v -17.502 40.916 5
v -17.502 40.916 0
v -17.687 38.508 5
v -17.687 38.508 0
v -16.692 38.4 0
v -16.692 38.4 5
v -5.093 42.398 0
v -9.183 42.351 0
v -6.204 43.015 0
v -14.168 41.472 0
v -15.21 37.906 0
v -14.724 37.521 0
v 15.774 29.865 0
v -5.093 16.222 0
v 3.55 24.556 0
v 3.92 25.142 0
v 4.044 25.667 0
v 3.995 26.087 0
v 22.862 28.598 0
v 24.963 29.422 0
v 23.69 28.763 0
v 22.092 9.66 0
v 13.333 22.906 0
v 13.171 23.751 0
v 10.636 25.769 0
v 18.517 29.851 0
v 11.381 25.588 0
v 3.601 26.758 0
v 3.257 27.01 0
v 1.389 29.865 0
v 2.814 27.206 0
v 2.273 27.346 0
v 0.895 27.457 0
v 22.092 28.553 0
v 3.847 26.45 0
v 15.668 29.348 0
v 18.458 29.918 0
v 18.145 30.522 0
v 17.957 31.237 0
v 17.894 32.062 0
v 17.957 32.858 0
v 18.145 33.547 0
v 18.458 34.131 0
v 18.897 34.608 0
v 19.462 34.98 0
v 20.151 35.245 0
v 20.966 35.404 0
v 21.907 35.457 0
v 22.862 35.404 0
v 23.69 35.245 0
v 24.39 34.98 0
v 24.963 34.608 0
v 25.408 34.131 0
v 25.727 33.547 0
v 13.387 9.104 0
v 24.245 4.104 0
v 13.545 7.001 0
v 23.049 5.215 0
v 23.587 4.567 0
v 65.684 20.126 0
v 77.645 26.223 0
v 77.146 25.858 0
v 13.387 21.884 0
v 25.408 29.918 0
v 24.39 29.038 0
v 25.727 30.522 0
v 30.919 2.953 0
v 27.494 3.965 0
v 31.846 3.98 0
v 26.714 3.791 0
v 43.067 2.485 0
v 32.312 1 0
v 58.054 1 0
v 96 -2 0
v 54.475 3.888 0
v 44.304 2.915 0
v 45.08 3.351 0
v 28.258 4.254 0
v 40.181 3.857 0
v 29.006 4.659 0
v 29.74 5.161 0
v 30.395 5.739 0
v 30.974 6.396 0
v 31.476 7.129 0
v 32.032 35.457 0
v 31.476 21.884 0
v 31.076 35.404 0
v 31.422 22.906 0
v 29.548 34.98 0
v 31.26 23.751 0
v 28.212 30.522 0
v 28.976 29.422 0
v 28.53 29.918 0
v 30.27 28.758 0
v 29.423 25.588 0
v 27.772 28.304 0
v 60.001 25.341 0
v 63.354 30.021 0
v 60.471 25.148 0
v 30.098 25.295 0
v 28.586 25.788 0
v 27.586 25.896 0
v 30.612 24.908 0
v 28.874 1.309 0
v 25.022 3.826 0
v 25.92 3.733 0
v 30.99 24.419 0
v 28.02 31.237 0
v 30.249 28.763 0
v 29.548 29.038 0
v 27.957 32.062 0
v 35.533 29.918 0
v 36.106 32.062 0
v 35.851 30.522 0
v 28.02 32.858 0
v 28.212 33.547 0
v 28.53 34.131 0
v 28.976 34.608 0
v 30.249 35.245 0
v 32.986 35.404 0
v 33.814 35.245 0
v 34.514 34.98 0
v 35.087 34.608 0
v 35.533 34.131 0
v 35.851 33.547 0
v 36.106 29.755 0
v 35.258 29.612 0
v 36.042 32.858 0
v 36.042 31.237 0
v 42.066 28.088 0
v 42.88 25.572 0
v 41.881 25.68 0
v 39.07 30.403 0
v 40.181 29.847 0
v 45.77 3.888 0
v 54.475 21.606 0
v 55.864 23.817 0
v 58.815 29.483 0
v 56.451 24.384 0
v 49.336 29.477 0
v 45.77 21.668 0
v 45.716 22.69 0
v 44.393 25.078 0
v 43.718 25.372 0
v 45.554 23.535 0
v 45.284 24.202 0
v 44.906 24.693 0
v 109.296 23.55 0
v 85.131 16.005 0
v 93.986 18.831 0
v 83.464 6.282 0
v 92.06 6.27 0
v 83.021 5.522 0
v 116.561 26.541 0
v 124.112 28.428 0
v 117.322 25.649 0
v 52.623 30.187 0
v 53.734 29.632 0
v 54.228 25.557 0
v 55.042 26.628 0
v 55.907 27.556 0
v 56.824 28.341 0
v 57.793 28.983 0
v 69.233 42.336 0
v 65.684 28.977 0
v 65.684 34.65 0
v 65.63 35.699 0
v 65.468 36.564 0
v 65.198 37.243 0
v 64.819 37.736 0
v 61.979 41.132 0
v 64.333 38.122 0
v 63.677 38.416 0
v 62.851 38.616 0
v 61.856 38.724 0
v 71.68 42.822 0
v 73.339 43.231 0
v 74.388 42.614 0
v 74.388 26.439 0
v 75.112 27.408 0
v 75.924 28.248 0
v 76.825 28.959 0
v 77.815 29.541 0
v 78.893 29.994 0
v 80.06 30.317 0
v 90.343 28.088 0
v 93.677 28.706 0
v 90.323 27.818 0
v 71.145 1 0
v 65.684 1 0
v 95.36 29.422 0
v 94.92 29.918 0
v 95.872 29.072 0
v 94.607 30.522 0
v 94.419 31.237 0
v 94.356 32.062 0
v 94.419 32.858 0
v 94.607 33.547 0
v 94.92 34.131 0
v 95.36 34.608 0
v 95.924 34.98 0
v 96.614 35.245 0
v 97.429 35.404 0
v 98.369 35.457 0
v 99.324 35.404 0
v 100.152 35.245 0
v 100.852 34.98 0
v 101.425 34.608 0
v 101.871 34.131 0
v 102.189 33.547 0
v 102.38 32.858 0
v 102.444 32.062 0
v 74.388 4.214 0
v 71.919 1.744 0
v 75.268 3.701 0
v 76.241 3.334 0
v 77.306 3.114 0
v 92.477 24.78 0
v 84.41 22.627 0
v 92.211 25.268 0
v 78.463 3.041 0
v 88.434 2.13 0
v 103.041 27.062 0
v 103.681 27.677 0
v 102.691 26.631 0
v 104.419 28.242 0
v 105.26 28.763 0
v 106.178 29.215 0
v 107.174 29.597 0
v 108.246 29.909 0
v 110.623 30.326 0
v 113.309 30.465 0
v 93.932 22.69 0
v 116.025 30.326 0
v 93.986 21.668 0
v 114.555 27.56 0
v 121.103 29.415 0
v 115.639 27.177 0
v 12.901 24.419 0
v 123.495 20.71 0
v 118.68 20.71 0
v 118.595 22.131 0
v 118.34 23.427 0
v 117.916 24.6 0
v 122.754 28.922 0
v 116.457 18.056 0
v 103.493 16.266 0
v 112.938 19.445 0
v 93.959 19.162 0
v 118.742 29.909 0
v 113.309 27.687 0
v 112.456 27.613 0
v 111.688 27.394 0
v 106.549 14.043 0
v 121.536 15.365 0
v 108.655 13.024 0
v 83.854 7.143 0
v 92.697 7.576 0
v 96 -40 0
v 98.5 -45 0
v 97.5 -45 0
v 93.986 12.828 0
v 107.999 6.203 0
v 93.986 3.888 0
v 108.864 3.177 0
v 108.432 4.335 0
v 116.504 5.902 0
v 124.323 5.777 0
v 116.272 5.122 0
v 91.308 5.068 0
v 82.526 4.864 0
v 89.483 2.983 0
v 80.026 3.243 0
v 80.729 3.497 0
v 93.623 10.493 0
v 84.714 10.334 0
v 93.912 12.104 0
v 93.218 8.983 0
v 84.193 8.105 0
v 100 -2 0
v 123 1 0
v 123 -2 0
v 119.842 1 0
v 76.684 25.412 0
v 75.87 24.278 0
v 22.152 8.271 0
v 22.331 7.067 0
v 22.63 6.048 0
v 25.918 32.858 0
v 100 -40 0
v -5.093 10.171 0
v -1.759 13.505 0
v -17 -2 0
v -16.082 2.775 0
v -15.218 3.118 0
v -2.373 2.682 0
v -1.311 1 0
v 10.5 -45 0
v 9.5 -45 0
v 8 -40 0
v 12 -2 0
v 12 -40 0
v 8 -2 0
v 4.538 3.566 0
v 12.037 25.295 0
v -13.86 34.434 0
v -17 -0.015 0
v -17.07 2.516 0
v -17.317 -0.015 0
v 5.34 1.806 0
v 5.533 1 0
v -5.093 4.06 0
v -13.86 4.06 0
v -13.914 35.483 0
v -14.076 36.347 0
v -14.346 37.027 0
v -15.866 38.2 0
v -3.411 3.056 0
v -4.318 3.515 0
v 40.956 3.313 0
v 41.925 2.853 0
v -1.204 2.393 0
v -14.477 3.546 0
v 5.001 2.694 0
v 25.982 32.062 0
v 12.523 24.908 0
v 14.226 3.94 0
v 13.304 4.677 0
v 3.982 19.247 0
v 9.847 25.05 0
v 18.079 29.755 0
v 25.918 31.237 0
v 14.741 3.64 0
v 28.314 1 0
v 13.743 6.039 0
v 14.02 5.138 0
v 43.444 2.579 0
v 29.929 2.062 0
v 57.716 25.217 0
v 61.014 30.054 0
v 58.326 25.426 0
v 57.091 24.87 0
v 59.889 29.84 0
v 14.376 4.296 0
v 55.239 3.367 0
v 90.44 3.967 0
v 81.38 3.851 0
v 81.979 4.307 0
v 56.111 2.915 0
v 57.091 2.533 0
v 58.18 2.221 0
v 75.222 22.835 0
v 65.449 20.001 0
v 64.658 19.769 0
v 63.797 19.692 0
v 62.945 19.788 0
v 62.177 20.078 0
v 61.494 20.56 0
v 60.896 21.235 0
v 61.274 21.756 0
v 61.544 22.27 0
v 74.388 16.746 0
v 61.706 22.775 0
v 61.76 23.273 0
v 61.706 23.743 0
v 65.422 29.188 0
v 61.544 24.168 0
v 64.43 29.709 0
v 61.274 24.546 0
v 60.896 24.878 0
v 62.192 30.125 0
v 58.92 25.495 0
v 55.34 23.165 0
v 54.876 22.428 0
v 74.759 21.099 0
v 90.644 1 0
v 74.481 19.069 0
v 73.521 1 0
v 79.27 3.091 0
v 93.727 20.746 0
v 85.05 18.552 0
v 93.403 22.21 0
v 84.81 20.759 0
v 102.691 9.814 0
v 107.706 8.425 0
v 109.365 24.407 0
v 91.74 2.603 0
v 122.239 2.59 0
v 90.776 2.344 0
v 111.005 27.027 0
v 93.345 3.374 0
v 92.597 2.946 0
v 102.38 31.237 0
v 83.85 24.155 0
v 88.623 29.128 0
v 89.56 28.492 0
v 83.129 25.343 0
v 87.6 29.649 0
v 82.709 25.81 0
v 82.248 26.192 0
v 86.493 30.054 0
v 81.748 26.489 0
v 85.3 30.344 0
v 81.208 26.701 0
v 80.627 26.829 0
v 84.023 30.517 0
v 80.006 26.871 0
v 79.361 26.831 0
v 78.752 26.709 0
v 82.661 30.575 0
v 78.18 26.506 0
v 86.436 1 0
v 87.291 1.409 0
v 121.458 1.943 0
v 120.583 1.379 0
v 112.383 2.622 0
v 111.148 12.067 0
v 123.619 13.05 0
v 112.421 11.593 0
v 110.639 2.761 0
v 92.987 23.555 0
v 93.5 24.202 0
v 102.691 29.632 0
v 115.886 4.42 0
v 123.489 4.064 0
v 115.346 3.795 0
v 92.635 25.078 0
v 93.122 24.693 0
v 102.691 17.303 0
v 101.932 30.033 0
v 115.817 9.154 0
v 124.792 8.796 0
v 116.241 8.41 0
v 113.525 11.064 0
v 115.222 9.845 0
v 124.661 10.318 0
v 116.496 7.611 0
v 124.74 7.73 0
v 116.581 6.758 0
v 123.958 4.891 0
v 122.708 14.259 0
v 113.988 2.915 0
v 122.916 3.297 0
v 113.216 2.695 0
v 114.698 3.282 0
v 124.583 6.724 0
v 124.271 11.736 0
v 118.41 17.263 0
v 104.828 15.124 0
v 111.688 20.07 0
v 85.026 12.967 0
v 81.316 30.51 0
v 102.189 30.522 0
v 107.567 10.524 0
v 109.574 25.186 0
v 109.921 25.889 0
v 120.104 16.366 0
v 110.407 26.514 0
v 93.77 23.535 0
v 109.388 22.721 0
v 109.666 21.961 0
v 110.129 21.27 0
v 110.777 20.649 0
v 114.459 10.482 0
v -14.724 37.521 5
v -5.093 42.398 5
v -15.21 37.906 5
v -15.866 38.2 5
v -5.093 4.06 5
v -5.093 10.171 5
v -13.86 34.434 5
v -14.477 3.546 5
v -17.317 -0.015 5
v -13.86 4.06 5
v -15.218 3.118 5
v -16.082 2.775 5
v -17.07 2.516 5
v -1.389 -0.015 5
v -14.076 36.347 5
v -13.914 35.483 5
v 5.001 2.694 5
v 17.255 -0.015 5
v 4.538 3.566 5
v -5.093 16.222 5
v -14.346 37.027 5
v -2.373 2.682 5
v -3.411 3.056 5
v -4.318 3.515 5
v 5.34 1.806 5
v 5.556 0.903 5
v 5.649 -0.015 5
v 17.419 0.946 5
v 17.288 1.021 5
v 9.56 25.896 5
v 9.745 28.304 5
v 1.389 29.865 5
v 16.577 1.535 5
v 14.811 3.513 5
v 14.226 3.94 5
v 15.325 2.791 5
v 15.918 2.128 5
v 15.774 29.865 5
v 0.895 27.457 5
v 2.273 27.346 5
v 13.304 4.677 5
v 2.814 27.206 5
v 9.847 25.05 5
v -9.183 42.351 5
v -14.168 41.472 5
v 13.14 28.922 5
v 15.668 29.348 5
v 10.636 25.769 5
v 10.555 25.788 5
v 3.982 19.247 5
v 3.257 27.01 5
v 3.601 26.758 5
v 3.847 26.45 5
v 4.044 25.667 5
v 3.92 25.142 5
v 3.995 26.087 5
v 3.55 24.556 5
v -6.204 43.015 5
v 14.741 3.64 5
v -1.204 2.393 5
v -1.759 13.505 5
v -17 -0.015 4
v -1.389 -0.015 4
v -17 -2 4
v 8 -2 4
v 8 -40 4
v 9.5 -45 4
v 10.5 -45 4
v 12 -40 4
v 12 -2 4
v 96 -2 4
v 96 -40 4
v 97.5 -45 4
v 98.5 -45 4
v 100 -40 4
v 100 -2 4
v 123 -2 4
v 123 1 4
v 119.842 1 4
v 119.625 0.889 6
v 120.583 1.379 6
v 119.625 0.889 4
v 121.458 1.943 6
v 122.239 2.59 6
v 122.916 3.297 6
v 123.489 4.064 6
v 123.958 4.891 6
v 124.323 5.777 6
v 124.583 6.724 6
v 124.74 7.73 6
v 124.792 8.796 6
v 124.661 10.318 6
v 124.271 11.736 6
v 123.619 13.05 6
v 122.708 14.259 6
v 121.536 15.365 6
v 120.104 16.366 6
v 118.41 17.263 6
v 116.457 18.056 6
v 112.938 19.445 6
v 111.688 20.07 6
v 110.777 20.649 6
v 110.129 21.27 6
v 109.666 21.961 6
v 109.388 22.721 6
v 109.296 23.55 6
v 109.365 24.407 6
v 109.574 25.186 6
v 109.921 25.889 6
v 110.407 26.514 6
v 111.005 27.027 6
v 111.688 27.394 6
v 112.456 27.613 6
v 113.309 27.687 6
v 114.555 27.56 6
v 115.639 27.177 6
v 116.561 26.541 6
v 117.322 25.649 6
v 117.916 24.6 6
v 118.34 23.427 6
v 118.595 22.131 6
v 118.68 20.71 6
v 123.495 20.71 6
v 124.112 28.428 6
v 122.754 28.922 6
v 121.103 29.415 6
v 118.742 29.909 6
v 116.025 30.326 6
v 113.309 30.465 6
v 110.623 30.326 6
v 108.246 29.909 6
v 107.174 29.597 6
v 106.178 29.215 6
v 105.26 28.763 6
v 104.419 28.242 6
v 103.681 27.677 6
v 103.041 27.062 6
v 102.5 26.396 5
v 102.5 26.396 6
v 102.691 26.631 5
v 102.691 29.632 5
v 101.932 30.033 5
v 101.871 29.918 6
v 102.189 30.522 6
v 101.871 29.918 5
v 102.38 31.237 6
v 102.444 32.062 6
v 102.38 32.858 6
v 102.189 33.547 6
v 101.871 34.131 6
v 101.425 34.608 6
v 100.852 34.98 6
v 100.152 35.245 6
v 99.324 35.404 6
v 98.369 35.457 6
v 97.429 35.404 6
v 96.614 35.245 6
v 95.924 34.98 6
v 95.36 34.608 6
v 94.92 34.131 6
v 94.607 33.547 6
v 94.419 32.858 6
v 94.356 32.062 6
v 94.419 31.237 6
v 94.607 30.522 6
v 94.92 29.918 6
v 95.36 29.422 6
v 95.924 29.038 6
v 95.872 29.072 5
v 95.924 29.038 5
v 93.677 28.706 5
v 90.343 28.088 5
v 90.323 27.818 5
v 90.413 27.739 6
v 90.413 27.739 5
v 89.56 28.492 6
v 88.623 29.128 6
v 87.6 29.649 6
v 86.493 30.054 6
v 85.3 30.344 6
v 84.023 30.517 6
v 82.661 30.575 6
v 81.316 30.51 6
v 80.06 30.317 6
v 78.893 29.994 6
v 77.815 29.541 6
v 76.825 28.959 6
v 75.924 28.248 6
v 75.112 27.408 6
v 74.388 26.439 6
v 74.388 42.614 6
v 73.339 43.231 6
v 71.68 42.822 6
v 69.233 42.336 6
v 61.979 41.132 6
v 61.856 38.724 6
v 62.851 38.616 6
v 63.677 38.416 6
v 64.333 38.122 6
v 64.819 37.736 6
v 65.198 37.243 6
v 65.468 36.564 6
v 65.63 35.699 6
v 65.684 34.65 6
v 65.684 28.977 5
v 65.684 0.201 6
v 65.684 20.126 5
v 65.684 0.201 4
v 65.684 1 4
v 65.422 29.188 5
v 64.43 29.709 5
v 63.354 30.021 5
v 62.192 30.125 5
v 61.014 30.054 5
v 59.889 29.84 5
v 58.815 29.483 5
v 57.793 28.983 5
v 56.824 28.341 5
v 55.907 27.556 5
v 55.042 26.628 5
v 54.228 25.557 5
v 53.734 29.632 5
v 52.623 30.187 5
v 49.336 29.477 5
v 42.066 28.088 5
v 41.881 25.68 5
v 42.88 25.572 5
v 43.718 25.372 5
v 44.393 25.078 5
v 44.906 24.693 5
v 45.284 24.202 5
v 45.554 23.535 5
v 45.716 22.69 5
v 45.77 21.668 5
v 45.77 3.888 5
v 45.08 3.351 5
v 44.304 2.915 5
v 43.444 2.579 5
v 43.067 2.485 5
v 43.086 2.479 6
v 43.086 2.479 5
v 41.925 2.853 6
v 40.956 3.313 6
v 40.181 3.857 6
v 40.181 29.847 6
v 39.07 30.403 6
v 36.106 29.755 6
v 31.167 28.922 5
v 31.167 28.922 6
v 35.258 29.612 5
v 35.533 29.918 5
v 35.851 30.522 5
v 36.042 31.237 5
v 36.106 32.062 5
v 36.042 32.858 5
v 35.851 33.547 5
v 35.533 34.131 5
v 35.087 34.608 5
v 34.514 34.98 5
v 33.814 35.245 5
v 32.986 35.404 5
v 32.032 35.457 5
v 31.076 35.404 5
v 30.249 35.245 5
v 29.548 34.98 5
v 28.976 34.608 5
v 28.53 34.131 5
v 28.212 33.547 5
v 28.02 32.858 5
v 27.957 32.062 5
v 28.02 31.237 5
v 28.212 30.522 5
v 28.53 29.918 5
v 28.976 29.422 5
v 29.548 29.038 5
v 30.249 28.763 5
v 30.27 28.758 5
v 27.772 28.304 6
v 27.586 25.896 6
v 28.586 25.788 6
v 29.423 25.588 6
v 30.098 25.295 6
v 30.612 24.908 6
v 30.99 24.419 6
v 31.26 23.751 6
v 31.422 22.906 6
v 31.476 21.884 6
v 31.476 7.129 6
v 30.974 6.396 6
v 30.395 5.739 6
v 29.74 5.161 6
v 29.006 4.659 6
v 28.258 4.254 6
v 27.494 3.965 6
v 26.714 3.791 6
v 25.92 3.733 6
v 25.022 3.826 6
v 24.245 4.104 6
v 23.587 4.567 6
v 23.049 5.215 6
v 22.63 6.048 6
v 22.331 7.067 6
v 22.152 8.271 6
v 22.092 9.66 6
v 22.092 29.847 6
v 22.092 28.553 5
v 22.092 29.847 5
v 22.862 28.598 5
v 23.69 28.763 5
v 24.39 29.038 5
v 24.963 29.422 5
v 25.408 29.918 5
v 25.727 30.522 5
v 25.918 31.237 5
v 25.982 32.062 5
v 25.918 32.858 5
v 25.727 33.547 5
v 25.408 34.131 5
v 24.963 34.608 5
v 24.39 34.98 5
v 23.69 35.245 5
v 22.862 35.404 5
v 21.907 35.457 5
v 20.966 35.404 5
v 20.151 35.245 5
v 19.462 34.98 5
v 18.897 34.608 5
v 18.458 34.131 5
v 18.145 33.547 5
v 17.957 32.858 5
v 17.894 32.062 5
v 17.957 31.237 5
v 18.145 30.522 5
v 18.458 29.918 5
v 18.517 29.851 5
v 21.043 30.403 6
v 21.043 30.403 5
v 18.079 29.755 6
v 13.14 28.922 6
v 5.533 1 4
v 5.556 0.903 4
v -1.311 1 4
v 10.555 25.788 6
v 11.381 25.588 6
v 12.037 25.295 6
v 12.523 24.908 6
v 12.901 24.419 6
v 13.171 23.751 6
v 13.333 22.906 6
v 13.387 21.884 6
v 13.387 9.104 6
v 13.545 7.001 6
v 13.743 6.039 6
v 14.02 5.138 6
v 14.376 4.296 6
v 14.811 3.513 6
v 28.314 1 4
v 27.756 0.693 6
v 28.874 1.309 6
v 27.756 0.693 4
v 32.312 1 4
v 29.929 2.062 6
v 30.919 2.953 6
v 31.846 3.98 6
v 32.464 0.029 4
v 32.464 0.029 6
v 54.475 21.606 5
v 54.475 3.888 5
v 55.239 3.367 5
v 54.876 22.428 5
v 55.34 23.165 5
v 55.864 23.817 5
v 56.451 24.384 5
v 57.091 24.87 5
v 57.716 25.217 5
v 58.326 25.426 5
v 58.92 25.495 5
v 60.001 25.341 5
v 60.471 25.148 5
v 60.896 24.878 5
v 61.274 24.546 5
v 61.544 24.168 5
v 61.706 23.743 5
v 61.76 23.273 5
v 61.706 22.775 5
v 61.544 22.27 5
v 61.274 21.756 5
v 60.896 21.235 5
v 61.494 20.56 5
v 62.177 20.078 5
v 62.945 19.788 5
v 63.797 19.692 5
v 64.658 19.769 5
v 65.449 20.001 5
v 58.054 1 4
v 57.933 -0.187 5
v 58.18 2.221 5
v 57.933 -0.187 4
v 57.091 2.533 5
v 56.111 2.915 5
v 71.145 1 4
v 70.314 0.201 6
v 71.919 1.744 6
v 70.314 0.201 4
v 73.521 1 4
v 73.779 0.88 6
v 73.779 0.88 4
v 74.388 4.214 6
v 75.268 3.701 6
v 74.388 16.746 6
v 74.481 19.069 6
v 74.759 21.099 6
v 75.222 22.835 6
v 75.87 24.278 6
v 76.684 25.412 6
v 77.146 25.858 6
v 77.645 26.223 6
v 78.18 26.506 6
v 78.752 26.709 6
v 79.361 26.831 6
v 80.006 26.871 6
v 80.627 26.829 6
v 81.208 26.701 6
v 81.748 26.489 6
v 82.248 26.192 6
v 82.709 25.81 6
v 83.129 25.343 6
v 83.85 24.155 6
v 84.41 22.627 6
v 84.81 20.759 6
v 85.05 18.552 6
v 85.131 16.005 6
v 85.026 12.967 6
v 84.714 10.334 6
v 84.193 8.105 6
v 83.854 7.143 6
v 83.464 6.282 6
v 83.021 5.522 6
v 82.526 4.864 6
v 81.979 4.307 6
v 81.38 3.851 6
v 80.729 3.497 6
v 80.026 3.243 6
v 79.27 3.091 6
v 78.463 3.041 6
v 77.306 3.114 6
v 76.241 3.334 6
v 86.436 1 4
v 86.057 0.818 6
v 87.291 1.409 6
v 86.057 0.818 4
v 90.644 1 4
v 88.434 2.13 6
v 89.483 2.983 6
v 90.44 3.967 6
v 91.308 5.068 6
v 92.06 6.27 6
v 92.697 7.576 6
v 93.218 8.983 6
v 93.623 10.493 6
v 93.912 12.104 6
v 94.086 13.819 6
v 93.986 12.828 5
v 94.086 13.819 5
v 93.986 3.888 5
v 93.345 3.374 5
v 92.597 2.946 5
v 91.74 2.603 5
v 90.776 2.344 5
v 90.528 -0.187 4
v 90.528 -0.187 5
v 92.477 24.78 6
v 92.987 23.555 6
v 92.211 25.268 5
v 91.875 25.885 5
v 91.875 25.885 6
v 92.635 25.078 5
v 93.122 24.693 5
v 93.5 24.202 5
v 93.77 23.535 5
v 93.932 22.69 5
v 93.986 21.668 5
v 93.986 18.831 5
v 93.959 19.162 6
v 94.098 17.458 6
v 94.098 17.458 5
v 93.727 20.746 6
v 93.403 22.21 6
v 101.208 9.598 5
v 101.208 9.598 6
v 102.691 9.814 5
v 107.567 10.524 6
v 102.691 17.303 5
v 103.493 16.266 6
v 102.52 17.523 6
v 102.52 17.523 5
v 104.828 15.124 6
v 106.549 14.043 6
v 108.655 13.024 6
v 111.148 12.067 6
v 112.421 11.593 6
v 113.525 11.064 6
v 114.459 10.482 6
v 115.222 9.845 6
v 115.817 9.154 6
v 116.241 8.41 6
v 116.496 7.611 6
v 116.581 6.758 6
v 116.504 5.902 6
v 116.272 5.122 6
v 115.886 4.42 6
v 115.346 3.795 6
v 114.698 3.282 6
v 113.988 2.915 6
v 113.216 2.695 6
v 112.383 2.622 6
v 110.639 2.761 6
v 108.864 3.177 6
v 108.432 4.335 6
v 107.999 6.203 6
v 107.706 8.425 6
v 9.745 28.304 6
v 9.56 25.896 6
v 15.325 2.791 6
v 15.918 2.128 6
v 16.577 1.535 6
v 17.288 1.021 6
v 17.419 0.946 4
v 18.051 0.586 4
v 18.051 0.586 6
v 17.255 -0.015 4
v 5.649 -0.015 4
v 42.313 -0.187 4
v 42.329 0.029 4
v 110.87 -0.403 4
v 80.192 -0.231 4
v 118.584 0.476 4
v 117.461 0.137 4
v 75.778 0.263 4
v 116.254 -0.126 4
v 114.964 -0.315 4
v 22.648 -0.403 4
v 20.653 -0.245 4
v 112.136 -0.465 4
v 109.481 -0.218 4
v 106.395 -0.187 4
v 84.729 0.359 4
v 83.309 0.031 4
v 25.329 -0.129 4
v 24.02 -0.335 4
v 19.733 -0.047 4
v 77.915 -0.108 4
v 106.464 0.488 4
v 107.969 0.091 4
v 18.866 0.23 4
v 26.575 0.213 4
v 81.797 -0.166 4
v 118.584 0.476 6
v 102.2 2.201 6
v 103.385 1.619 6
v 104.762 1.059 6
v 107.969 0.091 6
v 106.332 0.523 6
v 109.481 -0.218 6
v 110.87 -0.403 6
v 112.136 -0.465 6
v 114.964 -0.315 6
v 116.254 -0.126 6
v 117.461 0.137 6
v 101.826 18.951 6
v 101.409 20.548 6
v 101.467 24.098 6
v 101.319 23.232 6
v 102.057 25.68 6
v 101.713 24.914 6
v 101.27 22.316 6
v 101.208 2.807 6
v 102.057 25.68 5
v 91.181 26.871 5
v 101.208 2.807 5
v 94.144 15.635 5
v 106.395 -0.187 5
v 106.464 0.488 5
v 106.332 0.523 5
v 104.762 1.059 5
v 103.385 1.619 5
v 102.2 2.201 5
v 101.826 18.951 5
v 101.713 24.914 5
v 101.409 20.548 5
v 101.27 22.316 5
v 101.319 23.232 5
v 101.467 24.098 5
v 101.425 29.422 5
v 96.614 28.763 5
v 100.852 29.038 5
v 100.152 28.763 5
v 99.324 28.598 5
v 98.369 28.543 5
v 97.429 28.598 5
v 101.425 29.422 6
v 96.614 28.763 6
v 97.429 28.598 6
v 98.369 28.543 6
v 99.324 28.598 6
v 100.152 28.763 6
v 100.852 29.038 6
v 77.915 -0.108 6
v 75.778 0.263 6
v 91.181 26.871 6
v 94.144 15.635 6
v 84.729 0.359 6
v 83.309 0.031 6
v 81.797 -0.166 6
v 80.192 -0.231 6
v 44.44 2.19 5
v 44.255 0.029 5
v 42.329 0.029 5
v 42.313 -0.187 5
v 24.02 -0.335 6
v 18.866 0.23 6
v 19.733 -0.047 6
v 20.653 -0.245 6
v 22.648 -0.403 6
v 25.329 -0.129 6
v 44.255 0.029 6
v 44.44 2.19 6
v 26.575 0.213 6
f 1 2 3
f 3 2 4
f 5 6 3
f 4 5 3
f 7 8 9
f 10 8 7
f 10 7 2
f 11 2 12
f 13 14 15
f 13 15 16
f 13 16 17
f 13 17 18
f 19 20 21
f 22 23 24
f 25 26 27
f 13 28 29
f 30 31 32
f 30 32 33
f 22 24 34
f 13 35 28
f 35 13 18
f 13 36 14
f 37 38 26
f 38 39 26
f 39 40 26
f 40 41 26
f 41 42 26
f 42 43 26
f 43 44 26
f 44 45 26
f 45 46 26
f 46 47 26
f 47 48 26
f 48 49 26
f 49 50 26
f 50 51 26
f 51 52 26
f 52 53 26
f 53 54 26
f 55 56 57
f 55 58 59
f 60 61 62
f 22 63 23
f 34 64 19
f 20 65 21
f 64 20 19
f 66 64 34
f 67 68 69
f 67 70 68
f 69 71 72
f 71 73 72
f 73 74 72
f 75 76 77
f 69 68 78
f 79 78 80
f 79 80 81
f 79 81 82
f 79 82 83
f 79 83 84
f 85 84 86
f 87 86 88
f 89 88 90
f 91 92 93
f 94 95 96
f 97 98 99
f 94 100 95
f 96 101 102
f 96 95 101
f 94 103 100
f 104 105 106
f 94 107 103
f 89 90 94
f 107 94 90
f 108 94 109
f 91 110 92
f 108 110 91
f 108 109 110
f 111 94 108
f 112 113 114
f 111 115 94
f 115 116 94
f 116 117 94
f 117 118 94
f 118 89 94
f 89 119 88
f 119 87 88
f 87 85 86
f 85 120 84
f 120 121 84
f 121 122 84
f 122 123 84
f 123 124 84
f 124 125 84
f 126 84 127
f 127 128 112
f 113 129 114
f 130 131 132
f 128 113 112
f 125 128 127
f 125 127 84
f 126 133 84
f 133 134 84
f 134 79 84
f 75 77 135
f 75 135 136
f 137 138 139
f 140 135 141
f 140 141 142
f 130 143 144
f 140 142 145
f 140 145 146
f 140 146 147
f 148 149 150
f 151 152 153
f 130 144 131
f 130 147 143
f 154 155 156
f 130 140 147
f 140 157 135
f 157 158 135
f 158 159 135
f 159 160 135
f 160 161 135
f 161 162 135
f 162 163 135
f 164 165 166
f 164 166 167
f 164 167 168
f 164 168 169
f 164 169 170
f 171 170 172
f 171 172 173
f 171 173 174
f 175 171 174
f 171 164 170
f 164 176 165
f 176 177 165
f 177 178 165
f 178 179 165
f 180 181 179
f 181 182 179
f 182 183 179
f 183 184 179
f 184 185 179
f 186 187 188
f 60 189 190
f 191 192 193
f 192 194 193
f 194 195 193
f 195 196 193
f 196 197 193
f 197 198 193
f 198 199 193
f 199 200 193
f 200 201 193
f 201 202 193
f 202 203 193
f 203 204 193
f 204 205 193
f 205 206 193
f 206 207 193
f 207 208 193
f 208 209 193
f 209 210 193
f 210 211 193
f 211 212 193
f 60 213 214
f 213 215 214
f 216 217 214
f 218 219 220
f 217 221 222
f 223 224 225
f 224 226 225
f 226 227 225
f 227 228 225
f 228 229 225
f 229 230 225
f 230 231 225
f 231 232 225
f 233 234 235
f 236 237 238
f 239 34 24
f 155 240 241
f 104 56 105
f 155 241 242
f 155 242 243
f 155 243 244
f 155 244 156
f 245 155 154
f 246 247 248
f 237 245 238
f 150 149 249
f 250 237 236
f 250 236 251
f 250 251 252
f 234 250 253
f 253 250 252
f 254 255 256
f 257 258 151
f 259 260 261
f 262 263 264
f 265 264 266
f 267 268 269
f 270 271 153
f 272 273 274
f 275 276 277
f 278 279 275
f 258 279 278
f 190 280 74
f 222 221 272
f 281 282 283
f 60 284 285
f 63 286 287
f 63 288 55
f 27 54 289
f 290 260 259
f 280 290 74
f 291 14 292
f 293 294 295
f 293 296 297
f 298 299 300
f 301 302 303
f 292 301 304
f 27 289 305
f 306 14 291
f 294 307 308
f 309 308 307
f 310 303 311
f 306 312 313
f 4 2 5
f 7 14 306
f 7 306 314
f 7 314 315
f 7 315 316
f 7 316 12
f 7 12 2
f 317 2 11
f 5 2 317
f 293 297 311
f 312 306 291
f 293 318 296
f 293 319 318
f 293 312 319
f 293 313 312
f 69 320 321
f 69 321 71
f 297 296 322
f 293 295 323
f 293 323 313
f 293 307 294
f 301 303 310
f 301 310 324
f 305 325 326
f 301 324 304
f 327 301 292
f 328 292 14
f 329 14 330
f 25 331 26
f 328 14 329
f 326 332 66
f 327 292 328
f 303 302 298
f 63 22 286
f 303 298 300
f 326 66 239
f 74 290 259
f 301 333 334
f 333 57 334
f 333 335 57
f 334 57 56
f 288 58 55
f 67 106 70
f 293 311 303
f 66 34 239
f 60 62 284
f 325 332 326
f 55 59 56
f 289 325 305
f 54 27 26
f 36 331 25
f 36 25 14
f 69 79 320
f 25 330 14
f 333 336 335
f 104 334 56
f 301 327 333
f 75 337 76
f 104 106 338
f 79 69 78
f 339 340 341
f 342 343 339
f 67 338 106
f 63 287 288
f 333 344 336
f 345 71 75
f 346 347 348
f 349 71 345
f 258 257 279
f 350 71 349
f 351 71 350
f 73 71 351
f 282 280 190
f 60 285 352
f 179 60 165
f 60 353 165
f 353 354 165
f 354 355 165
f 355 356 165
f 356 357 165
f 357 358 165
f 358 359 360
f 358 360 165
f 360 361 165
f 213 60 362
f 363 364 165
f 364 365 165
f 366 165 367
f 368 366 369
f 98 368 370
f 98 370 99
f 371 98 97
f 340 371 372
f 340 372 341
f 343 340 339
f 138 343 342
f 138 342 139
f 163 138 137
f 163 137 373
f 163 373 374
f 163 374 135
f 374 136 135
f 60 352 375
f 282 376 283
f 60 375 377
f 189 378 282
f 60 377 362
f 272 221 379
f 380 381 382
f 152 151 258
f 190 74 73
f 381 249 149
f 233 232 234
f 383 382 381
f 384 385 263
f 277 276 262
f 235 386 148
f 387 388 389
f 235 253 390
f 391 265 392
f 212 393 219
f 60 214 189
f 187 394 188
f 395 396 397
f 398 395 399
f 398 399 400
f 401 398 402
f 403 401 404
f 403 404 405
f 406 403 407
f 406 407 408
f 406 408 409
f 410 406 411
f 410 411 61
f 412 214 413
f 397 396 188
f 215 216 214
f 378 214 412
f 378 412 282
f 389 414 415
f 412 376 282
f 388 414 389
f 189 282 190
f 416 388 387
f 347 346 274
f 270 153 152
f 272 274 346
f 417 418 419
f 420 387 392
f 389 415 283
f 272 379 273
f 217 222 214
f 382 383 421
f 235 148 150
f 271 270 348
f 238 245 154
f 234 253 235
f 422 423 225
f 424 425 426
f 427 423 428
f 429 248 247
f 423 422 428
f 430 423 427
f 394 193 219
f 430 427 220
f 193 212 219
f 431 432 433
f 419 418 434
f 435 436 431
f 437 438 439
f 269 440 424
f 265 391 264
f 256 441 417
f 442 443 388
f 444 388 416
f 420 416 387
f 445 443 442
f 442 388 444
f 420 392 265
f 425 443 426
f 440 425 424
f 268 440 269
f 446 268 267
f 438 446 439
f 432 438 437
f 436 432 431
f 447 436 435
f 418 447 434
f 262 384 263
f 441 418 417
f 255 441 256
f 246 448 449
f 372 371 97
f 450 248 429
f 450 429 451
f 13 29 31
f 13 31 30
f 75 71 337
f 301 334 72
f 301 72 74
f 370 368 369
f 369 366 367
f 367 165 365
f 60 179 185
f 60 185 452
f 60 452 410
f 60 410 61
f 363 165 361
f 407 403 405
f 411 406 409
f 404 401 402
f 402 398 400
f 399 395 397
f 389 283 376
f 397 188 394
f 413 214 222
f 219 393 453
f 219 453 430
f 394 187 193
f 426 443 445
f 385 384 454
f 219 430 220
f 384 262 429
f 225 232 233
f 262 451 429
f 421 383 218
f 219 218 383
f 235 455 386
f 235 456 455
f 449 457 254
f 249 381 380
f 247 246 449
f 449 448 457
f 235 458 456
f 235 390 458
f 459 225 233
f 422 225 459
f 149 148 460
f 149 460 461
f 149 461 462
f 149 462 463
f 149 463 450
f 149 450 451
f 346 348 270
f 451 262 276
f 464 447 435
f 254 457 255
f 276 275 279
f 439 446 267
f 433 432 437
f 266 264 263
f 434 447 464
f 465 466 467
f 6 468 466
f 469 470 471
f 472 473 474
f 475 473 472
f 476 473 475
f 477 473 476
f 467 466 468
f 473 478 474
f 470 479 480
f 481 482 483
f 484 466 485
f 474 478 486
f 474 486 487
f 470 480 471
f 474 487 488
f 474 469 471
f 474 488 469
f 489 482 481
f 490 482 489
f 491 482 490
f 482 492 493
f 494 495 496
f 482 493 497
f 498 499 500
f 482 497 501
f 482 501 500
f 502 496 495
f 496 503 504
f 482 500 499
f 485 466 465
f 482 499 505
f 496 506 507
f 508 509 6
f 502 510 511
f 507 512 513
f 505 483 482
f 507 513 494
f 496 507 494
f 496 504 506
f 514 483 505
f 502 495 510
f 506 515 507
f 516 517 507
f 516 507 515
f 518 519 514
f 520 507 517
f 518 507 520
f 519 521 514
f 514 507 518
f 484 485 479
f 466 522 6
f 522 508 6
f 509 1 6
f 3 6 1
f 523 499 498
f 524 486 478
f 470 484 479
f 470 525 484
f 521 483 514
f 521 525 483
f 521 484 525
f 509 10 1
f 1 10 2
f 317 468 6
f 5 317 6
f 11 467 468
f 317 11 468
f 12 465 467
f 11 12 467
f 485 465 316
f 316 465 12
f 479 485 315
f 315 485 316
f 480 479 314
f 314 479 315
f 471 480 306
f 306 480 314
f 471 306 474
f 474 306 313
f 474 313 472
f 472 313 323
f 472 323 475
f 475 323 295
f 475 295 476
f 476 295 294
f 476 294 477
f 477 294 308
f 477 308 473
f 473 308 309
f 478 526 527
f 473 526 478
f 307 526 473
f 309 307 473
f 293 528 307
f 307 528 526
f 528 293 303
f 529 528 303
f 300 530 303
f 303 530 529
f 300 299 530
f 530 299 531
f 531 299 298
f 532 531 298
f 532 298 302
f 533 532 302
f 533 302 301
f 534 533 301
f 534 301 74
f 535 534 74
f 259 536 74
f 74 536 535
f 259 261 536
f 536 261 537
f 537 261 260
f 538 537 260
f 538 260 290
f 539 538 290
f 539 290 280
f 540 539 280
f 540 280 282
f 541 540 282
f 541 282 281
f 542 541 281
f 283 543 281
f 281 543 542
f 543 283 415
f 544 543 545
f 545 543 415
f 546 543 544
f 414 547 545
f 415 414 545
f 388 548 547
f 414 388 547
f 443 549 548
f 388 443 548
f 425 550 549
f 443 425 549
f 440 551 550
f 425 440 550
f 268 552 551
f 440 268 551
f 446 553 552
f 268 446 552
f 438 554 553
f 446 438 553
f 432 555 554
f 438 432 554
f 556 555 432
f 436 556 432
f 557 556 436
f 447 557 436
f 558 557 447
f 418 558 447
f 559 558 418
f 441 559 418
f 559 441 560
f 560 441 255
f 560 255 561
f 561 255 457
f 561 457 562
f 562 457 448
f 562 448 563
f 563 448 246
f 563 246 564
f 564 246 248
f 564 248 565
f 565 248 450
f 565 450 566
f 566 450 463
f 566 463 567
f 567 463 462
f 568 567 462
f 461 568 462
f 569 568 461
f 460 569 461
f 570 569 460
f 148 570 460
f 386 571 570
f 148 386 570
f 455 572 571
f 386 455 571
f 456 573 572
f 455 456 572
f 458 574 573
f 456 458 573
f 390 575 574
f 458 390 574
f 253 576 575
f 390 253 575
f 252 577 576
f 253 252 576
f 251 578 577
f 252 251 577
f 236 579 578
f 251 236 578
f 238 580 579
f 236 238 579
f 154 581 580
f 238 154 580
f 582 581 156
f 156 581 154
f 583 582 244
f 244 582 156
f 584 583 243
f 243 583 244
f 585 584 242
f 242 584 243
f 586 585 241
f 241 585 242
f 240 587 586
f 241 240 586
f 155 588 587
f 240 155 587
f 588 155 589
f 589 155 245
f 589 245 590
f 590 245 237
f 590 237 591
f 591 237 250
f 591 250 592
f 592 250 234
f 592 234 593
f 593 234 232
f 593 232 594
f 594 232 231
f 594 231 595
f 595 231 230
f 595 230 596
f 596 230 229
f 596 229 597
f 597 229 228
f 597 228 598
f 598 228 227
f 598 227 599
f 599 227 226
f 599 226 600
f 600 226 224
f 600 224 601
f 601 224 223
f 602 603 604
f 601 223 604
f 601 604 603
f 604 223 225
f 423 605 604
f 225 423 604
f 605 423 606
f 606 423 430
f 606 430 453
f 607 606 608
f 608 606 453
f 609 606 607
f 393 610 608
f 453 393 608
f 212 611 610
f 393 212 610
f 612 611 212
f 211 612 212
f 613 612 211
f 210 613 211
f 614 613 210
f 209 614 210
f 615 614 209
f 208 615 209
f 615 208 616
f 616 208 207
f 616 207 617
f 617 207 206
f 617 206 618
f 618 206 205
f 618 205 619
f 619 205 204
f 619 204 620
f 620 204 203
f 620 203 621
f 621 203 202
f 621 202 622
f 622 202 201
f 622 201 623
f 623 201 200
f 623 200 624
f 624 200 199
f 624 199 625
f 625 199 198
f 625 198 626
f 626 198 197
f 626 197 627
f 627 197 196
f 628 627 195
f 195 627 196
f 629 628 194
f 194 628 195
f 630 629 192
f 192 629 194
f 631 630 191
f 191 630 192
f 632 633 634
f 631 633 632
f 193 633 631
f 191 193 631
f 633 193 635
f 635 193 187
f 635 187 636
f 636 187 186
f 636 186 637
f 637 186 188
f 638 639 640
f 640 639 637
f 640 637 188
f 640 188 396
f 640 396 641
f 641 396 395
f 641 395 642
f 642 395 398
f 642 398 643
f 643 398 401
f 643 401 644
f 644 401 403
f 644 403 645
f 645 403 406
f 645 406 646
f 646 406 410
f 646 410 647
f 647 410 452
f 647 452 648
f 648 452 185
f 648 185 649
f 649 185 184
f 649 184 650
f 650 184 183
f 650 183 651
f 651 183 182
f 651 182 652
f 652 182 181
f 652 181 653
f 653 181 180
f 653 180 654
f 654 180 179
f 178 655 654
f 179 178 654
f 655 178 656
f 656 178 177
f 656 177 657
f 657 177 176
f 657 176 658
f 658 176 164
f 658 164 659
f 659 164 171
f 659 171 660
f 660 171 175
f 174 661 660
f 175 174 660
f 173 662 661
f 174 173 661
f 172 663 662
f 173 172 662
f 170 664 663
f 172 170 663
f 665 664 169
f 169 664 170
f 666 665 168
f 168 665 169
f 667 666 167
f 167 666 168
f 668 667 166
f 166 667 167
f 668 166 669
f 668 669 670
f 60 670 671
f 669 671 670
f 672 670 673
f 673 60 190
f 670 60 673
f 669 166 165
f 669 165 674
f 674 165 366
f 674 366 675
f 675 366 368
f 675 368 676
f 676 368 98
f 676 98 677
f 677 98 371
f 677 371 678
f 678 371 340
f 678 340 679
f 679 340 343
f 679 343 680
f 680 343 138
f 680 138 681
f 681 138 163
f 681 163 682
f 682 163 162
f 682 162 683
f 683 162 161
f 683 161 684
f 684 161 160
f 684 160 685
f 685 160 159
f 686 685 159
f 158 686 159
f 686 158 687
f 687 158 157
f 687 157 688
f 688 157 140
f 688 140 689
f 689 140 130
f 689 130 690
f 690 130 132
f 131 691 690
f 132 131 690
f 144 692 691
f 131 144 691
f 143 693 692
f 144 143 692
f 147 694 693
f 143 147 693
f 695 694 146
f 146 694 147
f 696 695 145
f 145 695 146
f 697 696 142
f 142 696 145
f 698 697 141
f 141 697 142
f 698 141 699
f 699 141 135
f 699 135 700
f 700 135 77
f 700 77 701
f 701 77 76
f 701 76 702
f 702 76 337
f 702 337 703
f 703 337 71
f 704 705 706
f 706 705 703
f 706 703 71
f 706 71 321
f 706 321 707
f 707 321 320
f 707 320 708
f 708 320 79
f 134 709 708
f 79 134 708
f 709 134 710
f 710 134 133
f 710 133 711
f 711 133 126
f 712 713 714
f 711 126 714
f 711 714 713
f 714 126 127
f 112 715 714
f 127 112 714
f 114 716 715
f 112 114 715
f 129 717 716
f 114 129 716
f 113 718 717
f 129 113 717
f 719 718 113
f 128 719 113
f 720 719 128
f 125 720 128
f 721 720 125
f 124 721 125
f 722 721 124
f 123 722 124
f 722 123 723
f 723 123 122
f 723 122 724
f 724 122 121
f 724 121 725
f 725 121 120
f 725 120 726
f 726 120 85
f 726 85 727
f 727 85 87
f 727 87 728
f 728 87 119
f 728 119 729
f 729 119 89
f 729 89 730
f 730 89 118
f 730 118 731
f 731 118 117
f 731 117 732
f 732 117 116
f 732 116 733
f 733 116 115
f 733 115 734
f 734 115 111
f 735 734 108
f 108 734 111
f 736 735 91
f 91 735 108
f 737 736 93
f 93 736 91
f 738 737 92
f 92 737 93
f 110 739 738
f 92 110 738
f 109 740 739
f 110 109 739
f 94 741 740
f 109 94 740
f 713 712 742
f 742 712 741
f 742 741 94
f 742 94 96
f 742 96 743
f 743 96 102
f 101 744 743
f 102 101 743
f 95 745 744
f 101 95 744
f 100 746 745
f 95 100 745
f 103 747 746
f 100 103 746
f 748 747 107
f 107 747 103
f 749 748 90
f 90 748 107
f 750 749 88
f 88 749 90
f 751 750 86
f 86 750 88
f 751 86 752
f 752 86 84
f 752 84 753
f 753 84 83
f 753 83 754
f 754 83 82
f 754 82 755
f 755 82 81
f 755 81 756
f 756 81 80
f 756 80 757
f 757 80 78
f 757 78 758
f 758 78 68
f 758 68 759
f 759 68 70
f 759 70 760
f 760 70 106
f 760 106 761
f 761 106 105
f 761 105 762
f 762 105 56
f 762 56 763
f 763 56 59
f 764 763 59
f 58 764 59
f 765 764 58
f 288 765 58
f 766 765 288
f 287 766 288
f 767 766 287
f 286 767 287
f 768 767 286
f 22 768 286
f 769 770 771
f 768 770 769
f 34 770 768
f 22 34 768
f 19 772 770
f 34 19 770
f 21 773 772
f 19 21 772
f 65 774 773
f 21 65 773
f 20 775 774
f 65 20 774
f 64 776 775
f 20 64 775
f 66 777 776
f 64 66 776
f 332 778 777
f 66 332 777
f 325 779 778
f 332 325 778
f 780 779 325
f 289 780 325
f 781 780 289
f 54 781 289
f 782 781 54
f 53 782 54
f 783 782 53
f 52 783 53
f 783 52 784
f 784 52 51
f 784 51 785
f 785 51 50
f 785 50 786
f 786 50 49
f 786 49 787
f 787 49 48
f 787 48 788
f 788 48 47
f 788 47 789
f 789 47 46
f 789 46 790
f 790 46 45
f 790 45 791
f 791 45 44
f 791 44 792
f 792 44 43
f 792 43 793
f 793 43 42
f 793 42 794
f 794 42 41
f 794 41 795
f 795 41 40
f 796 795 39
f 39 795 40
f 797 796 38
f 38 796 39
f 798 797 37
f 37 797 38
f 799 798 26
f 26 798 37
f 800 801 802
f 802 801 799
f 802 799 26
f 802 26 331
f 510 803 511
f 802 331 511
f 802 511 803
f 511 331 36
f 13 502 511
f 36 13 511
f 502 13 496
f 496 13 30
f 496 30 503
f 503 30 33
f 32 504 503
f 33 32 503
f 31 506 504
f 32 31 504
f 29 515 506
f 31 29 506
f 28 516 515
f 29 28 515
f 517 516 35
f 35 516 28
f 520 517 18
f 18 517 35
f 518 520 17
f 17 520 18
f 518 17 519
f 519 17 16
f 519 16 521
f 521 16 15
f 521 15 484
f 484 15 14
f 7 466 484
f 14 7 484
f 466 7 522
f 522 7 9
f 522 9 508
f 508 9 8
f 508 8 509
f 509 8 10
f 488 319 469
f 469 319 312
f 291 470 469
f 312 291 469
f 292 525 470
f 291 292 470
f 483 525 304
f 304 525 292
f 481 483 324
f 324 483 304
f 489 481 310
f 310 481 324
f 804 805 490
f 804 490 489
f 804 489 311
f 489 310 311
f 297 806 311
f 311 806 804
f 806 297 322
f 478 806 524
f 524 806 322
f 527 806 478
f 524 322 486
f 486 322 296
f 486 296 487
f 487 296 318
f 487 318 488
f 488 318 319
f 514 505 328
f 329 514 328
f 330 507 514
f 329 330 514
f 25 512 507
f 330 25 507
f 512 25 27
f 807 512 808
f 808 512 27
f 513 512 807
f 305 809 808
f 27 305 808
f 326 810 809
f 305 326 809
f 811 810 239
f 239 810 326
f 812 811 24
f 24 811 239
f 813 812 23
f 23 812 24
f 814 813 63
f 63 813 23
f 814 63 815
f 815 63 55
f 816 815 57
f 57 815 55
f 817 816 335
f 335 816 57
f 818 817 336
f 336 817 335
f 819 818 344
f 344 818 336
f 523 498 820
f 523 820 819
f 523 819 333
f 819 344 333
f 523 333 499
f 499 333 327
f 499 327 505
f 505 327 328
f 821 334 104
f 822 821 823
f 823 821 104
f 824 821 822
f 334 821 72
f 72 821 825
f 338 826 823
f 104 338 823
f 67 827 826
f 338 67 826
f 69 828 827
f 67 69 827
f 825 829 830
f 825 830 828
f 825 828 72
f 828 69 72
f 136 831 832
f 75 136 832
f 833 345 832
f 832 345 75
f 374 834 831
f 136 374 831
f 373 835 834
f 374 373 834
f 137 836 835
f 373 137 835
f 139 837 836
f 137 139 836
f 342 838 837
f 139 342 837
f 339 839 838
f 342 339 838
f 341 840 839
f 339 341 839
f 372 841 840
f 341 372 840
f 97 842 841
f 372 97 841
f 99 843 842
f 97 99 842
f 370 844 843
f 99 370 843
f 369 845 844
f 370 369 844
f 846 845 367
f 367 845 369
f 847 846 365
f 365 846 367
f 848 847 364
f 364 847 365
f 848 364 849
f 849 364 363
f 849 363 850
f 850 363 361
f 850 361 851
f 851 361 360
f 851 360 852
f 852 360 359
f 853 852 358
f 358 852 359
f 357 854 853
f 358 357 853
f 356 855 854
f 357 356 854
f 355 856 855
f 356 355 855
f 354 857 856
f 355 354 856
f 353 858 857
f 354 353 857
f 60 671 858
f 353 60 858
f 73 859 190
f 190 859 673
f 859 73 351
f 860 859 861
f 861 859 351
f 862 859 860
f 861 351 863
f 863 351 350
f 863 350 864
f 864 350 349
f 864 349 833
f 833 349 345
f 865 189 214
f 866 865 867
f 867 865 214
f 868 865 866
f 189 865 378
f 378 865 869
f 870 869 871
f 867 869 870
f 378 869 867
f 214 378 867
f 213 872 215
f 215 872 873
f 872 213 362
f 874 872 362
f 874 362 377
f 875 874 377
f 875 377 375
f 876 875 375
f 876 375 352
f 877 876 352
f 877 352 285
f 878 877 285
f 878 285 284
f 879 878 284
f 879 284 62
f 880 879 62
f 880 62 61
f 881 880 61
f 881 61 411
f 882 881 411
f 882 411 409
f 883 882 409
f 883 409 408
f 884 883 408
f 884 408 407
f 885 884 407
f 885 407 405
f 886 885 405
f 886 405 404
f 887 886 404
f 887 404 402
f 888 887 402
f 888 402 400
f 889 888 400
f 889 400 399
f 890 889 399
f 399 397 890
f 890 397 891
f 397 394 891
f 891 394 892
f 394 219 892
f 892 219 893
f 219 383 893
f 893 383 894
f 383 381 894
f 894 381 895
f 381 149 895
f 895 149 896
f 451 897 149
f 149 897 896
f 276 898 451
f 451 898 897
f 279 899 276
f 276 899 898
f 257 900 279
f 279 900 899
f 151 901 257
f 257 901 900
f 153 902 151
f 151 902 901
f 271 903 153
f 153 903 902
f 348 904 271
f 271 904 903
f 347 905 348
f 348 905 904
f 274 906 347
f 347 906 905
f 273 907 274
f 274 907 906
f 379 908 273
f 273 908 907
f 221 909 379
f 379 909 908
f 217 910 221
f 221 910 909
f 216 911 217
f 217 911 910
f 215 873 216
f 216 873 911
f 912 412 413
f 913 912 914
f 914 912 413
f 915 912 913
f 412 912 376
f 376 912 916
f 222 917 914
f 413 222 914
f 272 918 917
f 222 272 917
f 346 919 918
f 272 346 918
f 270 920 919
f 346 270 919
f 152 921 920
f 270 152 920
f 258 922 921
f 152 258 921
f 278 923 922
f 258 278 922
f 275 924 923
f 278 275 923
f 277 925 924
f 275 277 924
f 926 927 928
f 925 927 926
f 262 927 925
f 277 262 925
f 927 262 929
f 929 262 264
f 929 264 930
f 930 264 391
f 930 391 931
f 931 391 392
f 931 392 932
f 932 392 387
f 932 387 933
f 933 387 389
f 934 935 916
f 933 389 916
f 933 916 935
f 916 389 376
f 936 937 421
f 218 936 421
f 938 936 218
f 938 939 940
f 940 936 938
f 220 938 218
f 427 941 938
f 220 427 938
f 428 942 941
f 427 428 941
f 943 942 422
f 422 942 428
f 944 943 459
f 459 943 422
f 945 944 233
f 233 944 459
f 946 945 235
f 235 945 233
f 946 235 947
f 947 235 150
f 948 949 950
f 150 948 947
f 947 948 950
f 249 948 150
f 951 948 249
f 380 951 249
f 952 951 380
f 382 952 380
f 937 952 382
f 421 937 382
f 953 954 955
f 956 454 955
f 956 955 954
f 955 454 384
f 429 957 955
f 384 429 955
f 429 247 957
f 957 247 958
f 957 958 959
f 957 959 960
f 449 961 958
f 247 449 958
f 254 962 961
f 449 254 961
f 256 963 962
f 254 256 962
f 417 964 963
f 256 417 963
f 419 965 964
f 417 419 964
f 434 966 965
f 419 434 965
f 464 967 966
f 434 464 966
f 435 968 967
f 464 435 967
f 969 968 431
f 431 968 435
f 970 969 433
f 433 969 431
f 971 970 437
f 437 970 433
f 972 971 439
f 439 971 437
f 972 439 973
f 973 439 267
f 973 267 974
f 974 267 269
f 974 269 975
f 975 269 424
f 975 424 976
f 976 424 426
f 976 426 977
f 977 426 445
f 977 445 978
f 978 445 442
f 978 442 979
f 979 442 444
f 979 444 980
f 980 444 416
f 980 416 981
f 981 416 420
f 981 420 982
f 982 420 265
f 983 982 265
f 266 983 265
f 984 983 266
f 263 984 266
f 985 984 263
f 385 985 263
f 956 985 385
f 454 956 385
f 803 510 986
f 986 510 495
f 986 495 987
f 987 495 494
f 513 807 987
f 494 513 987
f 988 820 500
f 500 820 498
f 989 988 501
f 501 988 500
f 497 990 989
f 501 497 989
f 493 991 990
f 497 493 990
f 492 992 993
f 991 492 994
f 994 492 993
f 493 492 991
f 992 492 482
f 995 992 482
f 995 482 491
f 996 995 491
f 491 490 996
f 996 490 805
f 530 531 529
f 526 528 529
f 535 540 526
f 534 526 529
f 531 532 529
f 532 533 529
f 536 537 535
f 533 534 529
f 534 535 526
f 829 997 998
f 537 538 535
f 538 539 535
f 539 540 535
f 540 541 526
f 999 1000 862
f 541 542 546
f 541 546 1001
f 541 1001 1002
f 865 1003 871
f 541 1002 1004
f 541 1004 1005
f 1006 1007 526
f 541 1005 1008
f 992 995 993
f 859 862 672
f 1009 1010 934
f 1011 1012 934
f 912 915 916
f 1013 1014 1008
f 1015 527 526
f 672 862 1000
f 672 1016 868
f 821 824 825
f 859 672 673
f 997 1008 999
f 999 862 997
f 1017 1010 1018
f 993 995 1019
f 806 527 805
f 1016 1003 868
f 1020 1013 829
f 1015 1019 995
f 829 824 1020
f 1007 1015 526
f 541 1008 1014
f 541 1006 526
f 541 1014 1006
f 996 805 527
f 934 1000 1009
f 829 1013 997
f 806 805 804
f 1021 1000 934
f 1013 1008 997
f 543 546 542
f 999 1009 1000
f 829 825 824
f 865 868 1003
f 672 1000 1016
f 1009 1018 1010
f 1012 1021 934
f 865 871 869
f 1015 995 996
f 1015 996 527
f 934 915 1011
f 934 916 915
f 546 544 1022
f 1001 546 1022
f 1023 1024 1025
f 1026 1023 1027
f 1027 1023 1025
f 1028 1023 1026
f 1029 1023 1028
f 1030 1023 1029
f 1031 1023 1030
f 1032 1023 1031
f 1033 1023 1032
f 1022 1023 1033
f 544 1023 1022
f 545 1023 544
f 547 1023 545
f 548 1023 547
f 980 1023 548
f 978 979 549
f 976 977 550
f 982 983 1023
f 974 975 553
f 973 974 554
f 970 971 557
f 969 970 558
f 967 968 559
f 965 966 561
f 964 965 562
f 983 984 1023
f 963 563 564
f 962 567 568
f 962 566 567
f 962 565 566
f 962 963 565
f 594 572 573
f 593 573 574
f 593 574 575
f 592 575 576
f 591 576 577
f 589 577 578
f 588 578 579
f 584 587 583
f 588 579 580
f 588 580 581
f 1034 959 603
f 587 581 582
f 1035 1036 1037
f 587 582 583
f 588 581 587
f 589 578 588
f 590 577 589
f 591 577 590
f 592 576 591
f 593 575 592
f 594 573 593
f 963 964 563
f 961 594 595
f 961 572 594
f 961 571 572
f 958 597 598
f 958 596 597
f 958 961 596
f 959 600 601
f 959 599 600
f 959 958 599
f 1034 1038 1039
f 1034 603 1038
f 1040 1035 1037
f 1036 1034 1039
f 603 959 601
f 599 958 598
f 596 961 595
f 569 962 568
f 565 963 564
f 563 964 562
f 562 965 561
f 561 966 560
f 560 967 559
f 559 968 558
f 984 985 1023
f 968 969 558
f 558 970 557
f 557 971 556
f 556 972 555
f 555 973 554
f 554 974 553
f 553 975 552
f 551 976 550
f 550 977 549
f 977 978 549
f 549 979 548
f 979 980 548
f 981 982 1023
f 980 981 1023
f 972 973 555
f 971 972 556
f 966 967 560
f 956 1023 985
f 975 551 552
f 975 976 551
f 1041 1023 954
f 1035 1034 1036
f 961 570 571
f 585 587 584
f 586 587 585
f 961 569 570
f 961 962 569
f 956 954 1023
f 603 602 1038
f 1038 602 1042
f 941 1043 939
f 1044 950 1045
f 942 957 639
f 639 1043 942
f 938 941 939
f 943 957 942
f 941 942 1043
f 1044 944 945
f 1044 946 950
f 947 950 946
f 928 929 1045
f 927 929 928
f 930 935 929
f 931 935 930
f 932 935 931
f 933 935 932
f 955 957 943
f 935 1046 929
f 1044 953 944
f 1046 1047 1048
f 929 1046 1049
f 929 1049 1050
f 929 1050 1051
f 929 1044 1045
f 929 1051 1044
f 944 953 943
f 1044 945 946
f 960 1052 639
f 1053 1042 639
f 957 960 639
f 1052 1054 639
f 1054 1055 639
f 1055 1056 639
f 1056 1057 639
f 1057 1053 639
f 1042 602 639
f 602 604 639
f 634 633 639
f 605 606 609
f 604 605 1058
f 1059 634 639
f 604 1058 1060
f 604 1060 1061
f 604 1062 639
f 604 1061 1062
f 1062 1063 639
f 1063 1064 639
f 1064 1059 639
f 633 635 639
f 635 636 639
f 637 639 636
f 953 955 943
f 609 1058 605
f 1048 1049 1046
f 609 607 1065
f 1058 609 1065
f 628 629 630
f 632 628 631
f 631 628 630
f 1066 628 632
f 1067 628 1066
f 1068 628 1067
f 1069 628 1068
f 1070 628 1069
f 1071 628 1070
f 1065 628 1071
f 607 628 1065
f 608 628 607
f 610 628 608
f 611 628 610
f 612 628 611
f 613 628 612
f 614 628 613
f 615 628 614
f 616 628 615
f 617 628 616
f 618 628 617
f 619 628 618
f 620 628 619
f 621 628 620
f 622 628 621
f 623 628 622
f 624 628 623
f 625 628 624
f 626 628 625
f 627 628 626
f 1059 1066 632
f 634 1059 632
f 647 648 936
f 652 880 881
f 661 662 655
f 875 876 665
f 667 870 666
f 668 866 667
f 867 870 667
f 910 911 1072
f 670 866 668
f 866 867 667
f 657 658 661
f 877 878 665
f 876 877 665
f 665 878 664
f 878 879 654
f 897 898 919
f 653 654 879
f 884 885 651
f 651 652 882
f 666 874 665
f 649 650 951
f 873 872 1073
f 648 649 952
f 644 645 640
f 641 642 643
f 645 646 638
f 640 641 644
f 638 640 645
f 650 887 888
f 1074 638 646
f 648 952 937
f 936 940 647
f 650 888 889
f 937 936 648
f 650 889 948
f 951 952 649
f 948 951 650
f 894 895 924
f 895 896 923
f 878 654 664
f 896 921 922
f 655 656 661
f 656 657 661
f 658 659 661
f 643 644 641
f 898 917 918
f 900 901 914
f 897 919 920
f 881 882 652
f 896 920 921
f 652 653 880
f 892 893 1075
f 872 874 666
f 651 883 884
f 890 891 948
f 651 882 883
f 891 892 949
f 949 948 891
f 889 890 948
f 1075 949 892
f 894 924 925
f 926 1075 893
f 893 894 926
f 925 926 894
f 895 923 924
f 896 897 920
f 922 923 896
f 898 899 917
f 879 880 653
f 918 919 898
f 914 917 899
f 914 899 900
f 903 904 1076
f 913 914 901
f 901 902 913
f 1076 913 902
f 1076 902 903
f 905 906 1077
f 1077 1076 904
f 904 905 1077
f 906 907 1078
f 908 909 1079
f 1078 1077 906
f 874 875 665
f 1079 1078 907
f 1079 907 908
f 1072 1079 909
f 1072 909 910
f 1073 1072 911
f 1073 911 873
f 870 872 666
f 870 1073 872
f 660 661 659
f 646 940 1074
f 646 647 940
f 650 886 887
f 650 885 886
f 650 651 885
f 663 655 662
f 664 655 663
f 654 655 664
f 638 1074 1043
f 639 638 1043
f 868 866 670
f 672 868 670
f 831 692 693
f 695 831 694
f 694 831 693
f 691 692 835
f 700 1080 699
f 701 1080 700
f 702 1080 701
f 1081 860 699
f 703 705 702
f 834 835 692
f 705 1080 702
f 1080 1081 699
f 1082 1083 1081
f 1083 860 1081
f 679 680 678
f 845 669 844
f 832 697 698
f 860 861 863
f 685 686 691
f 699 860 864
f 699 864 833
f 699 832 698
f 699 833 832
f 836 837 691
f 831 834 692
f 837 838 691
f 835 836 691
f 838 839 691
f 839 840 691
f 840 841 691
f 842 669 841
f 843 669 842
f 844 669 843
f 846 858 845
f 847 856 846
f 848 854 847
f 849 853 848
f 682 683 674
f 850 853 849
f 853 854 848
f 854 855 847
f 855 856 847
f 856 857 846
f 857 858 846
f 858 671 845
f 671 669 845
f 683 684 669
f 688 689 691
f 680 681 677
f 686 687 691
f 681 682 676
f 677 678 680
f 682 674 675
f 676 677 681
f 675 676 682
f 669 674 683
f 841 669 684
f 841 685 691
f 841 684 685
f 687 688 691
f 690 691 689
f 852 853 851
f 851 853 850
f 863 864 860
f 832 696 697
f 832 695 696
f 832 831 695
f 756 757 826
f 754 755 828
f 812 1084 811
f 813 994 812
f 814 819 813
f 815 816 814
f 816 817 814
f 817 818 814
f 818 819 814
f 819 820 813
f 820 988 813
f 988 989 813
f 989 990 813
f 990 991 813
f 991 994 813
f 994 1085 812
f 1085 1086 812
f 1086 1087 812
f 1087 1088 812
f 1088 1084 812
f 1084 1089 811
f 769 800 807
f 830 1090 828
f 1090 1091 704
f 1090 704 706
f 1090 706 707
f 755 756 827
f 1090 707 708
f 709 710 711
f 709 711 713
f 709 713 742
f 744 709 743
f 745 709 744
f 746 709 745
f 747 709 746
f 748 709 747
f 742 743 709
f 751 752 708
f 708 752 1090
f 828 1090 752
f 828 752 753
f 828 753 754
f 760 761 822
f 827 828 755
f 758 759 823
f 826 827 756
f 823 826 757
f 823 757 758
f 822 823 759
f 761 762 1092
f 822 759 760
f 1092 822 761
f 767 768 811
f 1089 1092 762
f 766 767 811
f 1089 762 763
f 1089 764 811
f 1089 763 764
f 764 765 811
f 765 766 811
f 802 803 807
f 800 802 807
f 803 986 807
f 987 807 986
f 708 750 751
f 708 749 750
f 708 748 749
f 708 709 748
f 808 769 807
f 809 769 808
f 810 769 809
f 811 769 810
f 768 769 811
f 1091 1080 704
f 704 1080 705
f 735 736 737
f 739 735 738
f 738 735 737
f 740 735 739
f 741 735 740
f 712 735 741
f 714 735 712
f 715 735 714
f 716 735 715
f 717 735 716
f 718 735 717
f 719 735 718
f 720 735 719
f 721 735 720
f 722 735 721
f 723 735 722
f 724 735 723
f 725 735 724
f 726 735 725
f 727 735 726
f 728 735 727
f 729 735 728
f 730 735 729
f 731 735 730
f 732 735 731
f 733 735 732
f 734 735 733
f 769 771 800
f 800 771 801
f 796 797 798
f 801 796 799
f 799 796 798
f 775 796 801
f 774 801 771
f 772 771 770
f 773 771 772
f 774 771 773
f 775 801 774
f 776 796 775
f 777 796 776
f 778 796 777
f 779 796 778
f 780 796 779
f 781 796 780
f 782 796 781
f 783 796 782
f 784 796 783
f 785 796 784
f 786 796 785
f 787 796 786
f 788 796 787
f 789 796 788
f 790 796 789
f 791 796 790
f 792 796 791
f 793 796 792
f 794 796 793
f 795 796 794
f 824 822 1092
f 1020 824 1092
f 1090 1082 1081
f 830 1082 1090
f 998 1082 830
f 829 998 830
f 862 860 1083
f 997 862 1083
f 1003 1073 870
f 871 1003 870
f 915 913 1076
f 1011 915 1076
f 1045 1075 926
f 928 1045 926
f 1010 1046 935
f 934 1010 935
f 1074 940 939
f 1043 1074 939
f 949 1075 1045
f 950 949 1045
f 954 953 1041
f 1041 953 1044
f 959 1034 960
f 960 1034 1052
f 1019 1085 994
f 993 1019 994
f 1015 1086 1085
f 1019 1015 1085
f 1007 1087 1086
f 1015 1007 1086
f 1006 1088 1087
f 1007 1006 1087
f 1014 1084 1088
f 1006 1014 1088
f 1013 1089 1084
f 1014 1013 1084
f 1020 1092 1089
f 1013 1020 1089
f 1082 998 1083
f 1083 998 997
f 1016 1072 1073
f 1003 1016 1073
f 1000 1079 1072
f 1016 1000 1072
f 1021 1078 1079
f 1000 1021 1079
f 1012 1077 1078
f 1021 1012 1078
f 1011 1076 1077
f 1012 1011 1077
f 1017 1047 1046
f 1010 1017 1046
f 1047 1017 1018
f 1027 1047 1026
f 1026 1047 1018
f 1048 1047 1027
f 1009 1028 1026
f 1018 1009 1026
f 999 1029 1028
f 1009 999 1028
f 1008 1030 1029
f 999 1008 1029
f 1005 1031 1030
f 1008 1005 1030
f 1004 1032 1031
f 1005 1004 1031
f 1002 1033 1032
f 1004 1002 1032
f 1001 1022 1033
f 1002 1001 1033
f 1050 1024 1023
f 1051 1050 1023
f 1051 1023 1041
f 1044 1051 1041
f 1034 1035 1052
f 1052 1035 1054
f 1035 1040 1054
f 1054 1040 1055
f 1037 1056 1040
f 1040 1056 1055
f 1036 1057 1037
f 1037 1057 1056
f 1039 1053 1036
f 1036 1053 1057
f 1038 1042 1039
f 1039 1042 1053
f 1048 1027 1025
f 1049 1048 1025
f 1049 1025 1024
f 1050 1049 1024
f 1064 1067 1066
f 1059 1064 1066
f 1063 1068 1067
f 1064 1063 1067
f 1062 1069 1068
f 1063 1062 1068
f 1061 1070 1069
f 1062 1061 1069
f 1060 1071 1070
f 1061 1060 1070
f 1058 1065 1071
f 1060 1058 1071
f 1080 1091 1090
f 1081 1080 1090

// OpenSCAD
fudge = 0.1;


include <letters.scad>;

module nail(l,w,h){
	hull(){
	translate([-w/2,5,0]) cube([w,l,h]);
	translate([-0.5,0,0]) cube([1,1,h]);
	}
}

translate([0,21.5,0]) letter_k(5);
translate([27,15.0,0]) letter_u(6);
translate([27,32.0,0]) dots(5);
translate([55,15.0,0]) letter_r(5);
translate([78,21.5,0]) letter_b(6);
translate([98.4,15,0]) letter_i(5);
translate([98.4,32,0]) dot(6);
translate([113,15.0,0]) letter_s(6);

translate([-17,-2,0]) cube([140,3,4]);

translate([10,-45,0]) nail(40,4,4);
translate([98,-45,0]) nail(40,4,4);	
